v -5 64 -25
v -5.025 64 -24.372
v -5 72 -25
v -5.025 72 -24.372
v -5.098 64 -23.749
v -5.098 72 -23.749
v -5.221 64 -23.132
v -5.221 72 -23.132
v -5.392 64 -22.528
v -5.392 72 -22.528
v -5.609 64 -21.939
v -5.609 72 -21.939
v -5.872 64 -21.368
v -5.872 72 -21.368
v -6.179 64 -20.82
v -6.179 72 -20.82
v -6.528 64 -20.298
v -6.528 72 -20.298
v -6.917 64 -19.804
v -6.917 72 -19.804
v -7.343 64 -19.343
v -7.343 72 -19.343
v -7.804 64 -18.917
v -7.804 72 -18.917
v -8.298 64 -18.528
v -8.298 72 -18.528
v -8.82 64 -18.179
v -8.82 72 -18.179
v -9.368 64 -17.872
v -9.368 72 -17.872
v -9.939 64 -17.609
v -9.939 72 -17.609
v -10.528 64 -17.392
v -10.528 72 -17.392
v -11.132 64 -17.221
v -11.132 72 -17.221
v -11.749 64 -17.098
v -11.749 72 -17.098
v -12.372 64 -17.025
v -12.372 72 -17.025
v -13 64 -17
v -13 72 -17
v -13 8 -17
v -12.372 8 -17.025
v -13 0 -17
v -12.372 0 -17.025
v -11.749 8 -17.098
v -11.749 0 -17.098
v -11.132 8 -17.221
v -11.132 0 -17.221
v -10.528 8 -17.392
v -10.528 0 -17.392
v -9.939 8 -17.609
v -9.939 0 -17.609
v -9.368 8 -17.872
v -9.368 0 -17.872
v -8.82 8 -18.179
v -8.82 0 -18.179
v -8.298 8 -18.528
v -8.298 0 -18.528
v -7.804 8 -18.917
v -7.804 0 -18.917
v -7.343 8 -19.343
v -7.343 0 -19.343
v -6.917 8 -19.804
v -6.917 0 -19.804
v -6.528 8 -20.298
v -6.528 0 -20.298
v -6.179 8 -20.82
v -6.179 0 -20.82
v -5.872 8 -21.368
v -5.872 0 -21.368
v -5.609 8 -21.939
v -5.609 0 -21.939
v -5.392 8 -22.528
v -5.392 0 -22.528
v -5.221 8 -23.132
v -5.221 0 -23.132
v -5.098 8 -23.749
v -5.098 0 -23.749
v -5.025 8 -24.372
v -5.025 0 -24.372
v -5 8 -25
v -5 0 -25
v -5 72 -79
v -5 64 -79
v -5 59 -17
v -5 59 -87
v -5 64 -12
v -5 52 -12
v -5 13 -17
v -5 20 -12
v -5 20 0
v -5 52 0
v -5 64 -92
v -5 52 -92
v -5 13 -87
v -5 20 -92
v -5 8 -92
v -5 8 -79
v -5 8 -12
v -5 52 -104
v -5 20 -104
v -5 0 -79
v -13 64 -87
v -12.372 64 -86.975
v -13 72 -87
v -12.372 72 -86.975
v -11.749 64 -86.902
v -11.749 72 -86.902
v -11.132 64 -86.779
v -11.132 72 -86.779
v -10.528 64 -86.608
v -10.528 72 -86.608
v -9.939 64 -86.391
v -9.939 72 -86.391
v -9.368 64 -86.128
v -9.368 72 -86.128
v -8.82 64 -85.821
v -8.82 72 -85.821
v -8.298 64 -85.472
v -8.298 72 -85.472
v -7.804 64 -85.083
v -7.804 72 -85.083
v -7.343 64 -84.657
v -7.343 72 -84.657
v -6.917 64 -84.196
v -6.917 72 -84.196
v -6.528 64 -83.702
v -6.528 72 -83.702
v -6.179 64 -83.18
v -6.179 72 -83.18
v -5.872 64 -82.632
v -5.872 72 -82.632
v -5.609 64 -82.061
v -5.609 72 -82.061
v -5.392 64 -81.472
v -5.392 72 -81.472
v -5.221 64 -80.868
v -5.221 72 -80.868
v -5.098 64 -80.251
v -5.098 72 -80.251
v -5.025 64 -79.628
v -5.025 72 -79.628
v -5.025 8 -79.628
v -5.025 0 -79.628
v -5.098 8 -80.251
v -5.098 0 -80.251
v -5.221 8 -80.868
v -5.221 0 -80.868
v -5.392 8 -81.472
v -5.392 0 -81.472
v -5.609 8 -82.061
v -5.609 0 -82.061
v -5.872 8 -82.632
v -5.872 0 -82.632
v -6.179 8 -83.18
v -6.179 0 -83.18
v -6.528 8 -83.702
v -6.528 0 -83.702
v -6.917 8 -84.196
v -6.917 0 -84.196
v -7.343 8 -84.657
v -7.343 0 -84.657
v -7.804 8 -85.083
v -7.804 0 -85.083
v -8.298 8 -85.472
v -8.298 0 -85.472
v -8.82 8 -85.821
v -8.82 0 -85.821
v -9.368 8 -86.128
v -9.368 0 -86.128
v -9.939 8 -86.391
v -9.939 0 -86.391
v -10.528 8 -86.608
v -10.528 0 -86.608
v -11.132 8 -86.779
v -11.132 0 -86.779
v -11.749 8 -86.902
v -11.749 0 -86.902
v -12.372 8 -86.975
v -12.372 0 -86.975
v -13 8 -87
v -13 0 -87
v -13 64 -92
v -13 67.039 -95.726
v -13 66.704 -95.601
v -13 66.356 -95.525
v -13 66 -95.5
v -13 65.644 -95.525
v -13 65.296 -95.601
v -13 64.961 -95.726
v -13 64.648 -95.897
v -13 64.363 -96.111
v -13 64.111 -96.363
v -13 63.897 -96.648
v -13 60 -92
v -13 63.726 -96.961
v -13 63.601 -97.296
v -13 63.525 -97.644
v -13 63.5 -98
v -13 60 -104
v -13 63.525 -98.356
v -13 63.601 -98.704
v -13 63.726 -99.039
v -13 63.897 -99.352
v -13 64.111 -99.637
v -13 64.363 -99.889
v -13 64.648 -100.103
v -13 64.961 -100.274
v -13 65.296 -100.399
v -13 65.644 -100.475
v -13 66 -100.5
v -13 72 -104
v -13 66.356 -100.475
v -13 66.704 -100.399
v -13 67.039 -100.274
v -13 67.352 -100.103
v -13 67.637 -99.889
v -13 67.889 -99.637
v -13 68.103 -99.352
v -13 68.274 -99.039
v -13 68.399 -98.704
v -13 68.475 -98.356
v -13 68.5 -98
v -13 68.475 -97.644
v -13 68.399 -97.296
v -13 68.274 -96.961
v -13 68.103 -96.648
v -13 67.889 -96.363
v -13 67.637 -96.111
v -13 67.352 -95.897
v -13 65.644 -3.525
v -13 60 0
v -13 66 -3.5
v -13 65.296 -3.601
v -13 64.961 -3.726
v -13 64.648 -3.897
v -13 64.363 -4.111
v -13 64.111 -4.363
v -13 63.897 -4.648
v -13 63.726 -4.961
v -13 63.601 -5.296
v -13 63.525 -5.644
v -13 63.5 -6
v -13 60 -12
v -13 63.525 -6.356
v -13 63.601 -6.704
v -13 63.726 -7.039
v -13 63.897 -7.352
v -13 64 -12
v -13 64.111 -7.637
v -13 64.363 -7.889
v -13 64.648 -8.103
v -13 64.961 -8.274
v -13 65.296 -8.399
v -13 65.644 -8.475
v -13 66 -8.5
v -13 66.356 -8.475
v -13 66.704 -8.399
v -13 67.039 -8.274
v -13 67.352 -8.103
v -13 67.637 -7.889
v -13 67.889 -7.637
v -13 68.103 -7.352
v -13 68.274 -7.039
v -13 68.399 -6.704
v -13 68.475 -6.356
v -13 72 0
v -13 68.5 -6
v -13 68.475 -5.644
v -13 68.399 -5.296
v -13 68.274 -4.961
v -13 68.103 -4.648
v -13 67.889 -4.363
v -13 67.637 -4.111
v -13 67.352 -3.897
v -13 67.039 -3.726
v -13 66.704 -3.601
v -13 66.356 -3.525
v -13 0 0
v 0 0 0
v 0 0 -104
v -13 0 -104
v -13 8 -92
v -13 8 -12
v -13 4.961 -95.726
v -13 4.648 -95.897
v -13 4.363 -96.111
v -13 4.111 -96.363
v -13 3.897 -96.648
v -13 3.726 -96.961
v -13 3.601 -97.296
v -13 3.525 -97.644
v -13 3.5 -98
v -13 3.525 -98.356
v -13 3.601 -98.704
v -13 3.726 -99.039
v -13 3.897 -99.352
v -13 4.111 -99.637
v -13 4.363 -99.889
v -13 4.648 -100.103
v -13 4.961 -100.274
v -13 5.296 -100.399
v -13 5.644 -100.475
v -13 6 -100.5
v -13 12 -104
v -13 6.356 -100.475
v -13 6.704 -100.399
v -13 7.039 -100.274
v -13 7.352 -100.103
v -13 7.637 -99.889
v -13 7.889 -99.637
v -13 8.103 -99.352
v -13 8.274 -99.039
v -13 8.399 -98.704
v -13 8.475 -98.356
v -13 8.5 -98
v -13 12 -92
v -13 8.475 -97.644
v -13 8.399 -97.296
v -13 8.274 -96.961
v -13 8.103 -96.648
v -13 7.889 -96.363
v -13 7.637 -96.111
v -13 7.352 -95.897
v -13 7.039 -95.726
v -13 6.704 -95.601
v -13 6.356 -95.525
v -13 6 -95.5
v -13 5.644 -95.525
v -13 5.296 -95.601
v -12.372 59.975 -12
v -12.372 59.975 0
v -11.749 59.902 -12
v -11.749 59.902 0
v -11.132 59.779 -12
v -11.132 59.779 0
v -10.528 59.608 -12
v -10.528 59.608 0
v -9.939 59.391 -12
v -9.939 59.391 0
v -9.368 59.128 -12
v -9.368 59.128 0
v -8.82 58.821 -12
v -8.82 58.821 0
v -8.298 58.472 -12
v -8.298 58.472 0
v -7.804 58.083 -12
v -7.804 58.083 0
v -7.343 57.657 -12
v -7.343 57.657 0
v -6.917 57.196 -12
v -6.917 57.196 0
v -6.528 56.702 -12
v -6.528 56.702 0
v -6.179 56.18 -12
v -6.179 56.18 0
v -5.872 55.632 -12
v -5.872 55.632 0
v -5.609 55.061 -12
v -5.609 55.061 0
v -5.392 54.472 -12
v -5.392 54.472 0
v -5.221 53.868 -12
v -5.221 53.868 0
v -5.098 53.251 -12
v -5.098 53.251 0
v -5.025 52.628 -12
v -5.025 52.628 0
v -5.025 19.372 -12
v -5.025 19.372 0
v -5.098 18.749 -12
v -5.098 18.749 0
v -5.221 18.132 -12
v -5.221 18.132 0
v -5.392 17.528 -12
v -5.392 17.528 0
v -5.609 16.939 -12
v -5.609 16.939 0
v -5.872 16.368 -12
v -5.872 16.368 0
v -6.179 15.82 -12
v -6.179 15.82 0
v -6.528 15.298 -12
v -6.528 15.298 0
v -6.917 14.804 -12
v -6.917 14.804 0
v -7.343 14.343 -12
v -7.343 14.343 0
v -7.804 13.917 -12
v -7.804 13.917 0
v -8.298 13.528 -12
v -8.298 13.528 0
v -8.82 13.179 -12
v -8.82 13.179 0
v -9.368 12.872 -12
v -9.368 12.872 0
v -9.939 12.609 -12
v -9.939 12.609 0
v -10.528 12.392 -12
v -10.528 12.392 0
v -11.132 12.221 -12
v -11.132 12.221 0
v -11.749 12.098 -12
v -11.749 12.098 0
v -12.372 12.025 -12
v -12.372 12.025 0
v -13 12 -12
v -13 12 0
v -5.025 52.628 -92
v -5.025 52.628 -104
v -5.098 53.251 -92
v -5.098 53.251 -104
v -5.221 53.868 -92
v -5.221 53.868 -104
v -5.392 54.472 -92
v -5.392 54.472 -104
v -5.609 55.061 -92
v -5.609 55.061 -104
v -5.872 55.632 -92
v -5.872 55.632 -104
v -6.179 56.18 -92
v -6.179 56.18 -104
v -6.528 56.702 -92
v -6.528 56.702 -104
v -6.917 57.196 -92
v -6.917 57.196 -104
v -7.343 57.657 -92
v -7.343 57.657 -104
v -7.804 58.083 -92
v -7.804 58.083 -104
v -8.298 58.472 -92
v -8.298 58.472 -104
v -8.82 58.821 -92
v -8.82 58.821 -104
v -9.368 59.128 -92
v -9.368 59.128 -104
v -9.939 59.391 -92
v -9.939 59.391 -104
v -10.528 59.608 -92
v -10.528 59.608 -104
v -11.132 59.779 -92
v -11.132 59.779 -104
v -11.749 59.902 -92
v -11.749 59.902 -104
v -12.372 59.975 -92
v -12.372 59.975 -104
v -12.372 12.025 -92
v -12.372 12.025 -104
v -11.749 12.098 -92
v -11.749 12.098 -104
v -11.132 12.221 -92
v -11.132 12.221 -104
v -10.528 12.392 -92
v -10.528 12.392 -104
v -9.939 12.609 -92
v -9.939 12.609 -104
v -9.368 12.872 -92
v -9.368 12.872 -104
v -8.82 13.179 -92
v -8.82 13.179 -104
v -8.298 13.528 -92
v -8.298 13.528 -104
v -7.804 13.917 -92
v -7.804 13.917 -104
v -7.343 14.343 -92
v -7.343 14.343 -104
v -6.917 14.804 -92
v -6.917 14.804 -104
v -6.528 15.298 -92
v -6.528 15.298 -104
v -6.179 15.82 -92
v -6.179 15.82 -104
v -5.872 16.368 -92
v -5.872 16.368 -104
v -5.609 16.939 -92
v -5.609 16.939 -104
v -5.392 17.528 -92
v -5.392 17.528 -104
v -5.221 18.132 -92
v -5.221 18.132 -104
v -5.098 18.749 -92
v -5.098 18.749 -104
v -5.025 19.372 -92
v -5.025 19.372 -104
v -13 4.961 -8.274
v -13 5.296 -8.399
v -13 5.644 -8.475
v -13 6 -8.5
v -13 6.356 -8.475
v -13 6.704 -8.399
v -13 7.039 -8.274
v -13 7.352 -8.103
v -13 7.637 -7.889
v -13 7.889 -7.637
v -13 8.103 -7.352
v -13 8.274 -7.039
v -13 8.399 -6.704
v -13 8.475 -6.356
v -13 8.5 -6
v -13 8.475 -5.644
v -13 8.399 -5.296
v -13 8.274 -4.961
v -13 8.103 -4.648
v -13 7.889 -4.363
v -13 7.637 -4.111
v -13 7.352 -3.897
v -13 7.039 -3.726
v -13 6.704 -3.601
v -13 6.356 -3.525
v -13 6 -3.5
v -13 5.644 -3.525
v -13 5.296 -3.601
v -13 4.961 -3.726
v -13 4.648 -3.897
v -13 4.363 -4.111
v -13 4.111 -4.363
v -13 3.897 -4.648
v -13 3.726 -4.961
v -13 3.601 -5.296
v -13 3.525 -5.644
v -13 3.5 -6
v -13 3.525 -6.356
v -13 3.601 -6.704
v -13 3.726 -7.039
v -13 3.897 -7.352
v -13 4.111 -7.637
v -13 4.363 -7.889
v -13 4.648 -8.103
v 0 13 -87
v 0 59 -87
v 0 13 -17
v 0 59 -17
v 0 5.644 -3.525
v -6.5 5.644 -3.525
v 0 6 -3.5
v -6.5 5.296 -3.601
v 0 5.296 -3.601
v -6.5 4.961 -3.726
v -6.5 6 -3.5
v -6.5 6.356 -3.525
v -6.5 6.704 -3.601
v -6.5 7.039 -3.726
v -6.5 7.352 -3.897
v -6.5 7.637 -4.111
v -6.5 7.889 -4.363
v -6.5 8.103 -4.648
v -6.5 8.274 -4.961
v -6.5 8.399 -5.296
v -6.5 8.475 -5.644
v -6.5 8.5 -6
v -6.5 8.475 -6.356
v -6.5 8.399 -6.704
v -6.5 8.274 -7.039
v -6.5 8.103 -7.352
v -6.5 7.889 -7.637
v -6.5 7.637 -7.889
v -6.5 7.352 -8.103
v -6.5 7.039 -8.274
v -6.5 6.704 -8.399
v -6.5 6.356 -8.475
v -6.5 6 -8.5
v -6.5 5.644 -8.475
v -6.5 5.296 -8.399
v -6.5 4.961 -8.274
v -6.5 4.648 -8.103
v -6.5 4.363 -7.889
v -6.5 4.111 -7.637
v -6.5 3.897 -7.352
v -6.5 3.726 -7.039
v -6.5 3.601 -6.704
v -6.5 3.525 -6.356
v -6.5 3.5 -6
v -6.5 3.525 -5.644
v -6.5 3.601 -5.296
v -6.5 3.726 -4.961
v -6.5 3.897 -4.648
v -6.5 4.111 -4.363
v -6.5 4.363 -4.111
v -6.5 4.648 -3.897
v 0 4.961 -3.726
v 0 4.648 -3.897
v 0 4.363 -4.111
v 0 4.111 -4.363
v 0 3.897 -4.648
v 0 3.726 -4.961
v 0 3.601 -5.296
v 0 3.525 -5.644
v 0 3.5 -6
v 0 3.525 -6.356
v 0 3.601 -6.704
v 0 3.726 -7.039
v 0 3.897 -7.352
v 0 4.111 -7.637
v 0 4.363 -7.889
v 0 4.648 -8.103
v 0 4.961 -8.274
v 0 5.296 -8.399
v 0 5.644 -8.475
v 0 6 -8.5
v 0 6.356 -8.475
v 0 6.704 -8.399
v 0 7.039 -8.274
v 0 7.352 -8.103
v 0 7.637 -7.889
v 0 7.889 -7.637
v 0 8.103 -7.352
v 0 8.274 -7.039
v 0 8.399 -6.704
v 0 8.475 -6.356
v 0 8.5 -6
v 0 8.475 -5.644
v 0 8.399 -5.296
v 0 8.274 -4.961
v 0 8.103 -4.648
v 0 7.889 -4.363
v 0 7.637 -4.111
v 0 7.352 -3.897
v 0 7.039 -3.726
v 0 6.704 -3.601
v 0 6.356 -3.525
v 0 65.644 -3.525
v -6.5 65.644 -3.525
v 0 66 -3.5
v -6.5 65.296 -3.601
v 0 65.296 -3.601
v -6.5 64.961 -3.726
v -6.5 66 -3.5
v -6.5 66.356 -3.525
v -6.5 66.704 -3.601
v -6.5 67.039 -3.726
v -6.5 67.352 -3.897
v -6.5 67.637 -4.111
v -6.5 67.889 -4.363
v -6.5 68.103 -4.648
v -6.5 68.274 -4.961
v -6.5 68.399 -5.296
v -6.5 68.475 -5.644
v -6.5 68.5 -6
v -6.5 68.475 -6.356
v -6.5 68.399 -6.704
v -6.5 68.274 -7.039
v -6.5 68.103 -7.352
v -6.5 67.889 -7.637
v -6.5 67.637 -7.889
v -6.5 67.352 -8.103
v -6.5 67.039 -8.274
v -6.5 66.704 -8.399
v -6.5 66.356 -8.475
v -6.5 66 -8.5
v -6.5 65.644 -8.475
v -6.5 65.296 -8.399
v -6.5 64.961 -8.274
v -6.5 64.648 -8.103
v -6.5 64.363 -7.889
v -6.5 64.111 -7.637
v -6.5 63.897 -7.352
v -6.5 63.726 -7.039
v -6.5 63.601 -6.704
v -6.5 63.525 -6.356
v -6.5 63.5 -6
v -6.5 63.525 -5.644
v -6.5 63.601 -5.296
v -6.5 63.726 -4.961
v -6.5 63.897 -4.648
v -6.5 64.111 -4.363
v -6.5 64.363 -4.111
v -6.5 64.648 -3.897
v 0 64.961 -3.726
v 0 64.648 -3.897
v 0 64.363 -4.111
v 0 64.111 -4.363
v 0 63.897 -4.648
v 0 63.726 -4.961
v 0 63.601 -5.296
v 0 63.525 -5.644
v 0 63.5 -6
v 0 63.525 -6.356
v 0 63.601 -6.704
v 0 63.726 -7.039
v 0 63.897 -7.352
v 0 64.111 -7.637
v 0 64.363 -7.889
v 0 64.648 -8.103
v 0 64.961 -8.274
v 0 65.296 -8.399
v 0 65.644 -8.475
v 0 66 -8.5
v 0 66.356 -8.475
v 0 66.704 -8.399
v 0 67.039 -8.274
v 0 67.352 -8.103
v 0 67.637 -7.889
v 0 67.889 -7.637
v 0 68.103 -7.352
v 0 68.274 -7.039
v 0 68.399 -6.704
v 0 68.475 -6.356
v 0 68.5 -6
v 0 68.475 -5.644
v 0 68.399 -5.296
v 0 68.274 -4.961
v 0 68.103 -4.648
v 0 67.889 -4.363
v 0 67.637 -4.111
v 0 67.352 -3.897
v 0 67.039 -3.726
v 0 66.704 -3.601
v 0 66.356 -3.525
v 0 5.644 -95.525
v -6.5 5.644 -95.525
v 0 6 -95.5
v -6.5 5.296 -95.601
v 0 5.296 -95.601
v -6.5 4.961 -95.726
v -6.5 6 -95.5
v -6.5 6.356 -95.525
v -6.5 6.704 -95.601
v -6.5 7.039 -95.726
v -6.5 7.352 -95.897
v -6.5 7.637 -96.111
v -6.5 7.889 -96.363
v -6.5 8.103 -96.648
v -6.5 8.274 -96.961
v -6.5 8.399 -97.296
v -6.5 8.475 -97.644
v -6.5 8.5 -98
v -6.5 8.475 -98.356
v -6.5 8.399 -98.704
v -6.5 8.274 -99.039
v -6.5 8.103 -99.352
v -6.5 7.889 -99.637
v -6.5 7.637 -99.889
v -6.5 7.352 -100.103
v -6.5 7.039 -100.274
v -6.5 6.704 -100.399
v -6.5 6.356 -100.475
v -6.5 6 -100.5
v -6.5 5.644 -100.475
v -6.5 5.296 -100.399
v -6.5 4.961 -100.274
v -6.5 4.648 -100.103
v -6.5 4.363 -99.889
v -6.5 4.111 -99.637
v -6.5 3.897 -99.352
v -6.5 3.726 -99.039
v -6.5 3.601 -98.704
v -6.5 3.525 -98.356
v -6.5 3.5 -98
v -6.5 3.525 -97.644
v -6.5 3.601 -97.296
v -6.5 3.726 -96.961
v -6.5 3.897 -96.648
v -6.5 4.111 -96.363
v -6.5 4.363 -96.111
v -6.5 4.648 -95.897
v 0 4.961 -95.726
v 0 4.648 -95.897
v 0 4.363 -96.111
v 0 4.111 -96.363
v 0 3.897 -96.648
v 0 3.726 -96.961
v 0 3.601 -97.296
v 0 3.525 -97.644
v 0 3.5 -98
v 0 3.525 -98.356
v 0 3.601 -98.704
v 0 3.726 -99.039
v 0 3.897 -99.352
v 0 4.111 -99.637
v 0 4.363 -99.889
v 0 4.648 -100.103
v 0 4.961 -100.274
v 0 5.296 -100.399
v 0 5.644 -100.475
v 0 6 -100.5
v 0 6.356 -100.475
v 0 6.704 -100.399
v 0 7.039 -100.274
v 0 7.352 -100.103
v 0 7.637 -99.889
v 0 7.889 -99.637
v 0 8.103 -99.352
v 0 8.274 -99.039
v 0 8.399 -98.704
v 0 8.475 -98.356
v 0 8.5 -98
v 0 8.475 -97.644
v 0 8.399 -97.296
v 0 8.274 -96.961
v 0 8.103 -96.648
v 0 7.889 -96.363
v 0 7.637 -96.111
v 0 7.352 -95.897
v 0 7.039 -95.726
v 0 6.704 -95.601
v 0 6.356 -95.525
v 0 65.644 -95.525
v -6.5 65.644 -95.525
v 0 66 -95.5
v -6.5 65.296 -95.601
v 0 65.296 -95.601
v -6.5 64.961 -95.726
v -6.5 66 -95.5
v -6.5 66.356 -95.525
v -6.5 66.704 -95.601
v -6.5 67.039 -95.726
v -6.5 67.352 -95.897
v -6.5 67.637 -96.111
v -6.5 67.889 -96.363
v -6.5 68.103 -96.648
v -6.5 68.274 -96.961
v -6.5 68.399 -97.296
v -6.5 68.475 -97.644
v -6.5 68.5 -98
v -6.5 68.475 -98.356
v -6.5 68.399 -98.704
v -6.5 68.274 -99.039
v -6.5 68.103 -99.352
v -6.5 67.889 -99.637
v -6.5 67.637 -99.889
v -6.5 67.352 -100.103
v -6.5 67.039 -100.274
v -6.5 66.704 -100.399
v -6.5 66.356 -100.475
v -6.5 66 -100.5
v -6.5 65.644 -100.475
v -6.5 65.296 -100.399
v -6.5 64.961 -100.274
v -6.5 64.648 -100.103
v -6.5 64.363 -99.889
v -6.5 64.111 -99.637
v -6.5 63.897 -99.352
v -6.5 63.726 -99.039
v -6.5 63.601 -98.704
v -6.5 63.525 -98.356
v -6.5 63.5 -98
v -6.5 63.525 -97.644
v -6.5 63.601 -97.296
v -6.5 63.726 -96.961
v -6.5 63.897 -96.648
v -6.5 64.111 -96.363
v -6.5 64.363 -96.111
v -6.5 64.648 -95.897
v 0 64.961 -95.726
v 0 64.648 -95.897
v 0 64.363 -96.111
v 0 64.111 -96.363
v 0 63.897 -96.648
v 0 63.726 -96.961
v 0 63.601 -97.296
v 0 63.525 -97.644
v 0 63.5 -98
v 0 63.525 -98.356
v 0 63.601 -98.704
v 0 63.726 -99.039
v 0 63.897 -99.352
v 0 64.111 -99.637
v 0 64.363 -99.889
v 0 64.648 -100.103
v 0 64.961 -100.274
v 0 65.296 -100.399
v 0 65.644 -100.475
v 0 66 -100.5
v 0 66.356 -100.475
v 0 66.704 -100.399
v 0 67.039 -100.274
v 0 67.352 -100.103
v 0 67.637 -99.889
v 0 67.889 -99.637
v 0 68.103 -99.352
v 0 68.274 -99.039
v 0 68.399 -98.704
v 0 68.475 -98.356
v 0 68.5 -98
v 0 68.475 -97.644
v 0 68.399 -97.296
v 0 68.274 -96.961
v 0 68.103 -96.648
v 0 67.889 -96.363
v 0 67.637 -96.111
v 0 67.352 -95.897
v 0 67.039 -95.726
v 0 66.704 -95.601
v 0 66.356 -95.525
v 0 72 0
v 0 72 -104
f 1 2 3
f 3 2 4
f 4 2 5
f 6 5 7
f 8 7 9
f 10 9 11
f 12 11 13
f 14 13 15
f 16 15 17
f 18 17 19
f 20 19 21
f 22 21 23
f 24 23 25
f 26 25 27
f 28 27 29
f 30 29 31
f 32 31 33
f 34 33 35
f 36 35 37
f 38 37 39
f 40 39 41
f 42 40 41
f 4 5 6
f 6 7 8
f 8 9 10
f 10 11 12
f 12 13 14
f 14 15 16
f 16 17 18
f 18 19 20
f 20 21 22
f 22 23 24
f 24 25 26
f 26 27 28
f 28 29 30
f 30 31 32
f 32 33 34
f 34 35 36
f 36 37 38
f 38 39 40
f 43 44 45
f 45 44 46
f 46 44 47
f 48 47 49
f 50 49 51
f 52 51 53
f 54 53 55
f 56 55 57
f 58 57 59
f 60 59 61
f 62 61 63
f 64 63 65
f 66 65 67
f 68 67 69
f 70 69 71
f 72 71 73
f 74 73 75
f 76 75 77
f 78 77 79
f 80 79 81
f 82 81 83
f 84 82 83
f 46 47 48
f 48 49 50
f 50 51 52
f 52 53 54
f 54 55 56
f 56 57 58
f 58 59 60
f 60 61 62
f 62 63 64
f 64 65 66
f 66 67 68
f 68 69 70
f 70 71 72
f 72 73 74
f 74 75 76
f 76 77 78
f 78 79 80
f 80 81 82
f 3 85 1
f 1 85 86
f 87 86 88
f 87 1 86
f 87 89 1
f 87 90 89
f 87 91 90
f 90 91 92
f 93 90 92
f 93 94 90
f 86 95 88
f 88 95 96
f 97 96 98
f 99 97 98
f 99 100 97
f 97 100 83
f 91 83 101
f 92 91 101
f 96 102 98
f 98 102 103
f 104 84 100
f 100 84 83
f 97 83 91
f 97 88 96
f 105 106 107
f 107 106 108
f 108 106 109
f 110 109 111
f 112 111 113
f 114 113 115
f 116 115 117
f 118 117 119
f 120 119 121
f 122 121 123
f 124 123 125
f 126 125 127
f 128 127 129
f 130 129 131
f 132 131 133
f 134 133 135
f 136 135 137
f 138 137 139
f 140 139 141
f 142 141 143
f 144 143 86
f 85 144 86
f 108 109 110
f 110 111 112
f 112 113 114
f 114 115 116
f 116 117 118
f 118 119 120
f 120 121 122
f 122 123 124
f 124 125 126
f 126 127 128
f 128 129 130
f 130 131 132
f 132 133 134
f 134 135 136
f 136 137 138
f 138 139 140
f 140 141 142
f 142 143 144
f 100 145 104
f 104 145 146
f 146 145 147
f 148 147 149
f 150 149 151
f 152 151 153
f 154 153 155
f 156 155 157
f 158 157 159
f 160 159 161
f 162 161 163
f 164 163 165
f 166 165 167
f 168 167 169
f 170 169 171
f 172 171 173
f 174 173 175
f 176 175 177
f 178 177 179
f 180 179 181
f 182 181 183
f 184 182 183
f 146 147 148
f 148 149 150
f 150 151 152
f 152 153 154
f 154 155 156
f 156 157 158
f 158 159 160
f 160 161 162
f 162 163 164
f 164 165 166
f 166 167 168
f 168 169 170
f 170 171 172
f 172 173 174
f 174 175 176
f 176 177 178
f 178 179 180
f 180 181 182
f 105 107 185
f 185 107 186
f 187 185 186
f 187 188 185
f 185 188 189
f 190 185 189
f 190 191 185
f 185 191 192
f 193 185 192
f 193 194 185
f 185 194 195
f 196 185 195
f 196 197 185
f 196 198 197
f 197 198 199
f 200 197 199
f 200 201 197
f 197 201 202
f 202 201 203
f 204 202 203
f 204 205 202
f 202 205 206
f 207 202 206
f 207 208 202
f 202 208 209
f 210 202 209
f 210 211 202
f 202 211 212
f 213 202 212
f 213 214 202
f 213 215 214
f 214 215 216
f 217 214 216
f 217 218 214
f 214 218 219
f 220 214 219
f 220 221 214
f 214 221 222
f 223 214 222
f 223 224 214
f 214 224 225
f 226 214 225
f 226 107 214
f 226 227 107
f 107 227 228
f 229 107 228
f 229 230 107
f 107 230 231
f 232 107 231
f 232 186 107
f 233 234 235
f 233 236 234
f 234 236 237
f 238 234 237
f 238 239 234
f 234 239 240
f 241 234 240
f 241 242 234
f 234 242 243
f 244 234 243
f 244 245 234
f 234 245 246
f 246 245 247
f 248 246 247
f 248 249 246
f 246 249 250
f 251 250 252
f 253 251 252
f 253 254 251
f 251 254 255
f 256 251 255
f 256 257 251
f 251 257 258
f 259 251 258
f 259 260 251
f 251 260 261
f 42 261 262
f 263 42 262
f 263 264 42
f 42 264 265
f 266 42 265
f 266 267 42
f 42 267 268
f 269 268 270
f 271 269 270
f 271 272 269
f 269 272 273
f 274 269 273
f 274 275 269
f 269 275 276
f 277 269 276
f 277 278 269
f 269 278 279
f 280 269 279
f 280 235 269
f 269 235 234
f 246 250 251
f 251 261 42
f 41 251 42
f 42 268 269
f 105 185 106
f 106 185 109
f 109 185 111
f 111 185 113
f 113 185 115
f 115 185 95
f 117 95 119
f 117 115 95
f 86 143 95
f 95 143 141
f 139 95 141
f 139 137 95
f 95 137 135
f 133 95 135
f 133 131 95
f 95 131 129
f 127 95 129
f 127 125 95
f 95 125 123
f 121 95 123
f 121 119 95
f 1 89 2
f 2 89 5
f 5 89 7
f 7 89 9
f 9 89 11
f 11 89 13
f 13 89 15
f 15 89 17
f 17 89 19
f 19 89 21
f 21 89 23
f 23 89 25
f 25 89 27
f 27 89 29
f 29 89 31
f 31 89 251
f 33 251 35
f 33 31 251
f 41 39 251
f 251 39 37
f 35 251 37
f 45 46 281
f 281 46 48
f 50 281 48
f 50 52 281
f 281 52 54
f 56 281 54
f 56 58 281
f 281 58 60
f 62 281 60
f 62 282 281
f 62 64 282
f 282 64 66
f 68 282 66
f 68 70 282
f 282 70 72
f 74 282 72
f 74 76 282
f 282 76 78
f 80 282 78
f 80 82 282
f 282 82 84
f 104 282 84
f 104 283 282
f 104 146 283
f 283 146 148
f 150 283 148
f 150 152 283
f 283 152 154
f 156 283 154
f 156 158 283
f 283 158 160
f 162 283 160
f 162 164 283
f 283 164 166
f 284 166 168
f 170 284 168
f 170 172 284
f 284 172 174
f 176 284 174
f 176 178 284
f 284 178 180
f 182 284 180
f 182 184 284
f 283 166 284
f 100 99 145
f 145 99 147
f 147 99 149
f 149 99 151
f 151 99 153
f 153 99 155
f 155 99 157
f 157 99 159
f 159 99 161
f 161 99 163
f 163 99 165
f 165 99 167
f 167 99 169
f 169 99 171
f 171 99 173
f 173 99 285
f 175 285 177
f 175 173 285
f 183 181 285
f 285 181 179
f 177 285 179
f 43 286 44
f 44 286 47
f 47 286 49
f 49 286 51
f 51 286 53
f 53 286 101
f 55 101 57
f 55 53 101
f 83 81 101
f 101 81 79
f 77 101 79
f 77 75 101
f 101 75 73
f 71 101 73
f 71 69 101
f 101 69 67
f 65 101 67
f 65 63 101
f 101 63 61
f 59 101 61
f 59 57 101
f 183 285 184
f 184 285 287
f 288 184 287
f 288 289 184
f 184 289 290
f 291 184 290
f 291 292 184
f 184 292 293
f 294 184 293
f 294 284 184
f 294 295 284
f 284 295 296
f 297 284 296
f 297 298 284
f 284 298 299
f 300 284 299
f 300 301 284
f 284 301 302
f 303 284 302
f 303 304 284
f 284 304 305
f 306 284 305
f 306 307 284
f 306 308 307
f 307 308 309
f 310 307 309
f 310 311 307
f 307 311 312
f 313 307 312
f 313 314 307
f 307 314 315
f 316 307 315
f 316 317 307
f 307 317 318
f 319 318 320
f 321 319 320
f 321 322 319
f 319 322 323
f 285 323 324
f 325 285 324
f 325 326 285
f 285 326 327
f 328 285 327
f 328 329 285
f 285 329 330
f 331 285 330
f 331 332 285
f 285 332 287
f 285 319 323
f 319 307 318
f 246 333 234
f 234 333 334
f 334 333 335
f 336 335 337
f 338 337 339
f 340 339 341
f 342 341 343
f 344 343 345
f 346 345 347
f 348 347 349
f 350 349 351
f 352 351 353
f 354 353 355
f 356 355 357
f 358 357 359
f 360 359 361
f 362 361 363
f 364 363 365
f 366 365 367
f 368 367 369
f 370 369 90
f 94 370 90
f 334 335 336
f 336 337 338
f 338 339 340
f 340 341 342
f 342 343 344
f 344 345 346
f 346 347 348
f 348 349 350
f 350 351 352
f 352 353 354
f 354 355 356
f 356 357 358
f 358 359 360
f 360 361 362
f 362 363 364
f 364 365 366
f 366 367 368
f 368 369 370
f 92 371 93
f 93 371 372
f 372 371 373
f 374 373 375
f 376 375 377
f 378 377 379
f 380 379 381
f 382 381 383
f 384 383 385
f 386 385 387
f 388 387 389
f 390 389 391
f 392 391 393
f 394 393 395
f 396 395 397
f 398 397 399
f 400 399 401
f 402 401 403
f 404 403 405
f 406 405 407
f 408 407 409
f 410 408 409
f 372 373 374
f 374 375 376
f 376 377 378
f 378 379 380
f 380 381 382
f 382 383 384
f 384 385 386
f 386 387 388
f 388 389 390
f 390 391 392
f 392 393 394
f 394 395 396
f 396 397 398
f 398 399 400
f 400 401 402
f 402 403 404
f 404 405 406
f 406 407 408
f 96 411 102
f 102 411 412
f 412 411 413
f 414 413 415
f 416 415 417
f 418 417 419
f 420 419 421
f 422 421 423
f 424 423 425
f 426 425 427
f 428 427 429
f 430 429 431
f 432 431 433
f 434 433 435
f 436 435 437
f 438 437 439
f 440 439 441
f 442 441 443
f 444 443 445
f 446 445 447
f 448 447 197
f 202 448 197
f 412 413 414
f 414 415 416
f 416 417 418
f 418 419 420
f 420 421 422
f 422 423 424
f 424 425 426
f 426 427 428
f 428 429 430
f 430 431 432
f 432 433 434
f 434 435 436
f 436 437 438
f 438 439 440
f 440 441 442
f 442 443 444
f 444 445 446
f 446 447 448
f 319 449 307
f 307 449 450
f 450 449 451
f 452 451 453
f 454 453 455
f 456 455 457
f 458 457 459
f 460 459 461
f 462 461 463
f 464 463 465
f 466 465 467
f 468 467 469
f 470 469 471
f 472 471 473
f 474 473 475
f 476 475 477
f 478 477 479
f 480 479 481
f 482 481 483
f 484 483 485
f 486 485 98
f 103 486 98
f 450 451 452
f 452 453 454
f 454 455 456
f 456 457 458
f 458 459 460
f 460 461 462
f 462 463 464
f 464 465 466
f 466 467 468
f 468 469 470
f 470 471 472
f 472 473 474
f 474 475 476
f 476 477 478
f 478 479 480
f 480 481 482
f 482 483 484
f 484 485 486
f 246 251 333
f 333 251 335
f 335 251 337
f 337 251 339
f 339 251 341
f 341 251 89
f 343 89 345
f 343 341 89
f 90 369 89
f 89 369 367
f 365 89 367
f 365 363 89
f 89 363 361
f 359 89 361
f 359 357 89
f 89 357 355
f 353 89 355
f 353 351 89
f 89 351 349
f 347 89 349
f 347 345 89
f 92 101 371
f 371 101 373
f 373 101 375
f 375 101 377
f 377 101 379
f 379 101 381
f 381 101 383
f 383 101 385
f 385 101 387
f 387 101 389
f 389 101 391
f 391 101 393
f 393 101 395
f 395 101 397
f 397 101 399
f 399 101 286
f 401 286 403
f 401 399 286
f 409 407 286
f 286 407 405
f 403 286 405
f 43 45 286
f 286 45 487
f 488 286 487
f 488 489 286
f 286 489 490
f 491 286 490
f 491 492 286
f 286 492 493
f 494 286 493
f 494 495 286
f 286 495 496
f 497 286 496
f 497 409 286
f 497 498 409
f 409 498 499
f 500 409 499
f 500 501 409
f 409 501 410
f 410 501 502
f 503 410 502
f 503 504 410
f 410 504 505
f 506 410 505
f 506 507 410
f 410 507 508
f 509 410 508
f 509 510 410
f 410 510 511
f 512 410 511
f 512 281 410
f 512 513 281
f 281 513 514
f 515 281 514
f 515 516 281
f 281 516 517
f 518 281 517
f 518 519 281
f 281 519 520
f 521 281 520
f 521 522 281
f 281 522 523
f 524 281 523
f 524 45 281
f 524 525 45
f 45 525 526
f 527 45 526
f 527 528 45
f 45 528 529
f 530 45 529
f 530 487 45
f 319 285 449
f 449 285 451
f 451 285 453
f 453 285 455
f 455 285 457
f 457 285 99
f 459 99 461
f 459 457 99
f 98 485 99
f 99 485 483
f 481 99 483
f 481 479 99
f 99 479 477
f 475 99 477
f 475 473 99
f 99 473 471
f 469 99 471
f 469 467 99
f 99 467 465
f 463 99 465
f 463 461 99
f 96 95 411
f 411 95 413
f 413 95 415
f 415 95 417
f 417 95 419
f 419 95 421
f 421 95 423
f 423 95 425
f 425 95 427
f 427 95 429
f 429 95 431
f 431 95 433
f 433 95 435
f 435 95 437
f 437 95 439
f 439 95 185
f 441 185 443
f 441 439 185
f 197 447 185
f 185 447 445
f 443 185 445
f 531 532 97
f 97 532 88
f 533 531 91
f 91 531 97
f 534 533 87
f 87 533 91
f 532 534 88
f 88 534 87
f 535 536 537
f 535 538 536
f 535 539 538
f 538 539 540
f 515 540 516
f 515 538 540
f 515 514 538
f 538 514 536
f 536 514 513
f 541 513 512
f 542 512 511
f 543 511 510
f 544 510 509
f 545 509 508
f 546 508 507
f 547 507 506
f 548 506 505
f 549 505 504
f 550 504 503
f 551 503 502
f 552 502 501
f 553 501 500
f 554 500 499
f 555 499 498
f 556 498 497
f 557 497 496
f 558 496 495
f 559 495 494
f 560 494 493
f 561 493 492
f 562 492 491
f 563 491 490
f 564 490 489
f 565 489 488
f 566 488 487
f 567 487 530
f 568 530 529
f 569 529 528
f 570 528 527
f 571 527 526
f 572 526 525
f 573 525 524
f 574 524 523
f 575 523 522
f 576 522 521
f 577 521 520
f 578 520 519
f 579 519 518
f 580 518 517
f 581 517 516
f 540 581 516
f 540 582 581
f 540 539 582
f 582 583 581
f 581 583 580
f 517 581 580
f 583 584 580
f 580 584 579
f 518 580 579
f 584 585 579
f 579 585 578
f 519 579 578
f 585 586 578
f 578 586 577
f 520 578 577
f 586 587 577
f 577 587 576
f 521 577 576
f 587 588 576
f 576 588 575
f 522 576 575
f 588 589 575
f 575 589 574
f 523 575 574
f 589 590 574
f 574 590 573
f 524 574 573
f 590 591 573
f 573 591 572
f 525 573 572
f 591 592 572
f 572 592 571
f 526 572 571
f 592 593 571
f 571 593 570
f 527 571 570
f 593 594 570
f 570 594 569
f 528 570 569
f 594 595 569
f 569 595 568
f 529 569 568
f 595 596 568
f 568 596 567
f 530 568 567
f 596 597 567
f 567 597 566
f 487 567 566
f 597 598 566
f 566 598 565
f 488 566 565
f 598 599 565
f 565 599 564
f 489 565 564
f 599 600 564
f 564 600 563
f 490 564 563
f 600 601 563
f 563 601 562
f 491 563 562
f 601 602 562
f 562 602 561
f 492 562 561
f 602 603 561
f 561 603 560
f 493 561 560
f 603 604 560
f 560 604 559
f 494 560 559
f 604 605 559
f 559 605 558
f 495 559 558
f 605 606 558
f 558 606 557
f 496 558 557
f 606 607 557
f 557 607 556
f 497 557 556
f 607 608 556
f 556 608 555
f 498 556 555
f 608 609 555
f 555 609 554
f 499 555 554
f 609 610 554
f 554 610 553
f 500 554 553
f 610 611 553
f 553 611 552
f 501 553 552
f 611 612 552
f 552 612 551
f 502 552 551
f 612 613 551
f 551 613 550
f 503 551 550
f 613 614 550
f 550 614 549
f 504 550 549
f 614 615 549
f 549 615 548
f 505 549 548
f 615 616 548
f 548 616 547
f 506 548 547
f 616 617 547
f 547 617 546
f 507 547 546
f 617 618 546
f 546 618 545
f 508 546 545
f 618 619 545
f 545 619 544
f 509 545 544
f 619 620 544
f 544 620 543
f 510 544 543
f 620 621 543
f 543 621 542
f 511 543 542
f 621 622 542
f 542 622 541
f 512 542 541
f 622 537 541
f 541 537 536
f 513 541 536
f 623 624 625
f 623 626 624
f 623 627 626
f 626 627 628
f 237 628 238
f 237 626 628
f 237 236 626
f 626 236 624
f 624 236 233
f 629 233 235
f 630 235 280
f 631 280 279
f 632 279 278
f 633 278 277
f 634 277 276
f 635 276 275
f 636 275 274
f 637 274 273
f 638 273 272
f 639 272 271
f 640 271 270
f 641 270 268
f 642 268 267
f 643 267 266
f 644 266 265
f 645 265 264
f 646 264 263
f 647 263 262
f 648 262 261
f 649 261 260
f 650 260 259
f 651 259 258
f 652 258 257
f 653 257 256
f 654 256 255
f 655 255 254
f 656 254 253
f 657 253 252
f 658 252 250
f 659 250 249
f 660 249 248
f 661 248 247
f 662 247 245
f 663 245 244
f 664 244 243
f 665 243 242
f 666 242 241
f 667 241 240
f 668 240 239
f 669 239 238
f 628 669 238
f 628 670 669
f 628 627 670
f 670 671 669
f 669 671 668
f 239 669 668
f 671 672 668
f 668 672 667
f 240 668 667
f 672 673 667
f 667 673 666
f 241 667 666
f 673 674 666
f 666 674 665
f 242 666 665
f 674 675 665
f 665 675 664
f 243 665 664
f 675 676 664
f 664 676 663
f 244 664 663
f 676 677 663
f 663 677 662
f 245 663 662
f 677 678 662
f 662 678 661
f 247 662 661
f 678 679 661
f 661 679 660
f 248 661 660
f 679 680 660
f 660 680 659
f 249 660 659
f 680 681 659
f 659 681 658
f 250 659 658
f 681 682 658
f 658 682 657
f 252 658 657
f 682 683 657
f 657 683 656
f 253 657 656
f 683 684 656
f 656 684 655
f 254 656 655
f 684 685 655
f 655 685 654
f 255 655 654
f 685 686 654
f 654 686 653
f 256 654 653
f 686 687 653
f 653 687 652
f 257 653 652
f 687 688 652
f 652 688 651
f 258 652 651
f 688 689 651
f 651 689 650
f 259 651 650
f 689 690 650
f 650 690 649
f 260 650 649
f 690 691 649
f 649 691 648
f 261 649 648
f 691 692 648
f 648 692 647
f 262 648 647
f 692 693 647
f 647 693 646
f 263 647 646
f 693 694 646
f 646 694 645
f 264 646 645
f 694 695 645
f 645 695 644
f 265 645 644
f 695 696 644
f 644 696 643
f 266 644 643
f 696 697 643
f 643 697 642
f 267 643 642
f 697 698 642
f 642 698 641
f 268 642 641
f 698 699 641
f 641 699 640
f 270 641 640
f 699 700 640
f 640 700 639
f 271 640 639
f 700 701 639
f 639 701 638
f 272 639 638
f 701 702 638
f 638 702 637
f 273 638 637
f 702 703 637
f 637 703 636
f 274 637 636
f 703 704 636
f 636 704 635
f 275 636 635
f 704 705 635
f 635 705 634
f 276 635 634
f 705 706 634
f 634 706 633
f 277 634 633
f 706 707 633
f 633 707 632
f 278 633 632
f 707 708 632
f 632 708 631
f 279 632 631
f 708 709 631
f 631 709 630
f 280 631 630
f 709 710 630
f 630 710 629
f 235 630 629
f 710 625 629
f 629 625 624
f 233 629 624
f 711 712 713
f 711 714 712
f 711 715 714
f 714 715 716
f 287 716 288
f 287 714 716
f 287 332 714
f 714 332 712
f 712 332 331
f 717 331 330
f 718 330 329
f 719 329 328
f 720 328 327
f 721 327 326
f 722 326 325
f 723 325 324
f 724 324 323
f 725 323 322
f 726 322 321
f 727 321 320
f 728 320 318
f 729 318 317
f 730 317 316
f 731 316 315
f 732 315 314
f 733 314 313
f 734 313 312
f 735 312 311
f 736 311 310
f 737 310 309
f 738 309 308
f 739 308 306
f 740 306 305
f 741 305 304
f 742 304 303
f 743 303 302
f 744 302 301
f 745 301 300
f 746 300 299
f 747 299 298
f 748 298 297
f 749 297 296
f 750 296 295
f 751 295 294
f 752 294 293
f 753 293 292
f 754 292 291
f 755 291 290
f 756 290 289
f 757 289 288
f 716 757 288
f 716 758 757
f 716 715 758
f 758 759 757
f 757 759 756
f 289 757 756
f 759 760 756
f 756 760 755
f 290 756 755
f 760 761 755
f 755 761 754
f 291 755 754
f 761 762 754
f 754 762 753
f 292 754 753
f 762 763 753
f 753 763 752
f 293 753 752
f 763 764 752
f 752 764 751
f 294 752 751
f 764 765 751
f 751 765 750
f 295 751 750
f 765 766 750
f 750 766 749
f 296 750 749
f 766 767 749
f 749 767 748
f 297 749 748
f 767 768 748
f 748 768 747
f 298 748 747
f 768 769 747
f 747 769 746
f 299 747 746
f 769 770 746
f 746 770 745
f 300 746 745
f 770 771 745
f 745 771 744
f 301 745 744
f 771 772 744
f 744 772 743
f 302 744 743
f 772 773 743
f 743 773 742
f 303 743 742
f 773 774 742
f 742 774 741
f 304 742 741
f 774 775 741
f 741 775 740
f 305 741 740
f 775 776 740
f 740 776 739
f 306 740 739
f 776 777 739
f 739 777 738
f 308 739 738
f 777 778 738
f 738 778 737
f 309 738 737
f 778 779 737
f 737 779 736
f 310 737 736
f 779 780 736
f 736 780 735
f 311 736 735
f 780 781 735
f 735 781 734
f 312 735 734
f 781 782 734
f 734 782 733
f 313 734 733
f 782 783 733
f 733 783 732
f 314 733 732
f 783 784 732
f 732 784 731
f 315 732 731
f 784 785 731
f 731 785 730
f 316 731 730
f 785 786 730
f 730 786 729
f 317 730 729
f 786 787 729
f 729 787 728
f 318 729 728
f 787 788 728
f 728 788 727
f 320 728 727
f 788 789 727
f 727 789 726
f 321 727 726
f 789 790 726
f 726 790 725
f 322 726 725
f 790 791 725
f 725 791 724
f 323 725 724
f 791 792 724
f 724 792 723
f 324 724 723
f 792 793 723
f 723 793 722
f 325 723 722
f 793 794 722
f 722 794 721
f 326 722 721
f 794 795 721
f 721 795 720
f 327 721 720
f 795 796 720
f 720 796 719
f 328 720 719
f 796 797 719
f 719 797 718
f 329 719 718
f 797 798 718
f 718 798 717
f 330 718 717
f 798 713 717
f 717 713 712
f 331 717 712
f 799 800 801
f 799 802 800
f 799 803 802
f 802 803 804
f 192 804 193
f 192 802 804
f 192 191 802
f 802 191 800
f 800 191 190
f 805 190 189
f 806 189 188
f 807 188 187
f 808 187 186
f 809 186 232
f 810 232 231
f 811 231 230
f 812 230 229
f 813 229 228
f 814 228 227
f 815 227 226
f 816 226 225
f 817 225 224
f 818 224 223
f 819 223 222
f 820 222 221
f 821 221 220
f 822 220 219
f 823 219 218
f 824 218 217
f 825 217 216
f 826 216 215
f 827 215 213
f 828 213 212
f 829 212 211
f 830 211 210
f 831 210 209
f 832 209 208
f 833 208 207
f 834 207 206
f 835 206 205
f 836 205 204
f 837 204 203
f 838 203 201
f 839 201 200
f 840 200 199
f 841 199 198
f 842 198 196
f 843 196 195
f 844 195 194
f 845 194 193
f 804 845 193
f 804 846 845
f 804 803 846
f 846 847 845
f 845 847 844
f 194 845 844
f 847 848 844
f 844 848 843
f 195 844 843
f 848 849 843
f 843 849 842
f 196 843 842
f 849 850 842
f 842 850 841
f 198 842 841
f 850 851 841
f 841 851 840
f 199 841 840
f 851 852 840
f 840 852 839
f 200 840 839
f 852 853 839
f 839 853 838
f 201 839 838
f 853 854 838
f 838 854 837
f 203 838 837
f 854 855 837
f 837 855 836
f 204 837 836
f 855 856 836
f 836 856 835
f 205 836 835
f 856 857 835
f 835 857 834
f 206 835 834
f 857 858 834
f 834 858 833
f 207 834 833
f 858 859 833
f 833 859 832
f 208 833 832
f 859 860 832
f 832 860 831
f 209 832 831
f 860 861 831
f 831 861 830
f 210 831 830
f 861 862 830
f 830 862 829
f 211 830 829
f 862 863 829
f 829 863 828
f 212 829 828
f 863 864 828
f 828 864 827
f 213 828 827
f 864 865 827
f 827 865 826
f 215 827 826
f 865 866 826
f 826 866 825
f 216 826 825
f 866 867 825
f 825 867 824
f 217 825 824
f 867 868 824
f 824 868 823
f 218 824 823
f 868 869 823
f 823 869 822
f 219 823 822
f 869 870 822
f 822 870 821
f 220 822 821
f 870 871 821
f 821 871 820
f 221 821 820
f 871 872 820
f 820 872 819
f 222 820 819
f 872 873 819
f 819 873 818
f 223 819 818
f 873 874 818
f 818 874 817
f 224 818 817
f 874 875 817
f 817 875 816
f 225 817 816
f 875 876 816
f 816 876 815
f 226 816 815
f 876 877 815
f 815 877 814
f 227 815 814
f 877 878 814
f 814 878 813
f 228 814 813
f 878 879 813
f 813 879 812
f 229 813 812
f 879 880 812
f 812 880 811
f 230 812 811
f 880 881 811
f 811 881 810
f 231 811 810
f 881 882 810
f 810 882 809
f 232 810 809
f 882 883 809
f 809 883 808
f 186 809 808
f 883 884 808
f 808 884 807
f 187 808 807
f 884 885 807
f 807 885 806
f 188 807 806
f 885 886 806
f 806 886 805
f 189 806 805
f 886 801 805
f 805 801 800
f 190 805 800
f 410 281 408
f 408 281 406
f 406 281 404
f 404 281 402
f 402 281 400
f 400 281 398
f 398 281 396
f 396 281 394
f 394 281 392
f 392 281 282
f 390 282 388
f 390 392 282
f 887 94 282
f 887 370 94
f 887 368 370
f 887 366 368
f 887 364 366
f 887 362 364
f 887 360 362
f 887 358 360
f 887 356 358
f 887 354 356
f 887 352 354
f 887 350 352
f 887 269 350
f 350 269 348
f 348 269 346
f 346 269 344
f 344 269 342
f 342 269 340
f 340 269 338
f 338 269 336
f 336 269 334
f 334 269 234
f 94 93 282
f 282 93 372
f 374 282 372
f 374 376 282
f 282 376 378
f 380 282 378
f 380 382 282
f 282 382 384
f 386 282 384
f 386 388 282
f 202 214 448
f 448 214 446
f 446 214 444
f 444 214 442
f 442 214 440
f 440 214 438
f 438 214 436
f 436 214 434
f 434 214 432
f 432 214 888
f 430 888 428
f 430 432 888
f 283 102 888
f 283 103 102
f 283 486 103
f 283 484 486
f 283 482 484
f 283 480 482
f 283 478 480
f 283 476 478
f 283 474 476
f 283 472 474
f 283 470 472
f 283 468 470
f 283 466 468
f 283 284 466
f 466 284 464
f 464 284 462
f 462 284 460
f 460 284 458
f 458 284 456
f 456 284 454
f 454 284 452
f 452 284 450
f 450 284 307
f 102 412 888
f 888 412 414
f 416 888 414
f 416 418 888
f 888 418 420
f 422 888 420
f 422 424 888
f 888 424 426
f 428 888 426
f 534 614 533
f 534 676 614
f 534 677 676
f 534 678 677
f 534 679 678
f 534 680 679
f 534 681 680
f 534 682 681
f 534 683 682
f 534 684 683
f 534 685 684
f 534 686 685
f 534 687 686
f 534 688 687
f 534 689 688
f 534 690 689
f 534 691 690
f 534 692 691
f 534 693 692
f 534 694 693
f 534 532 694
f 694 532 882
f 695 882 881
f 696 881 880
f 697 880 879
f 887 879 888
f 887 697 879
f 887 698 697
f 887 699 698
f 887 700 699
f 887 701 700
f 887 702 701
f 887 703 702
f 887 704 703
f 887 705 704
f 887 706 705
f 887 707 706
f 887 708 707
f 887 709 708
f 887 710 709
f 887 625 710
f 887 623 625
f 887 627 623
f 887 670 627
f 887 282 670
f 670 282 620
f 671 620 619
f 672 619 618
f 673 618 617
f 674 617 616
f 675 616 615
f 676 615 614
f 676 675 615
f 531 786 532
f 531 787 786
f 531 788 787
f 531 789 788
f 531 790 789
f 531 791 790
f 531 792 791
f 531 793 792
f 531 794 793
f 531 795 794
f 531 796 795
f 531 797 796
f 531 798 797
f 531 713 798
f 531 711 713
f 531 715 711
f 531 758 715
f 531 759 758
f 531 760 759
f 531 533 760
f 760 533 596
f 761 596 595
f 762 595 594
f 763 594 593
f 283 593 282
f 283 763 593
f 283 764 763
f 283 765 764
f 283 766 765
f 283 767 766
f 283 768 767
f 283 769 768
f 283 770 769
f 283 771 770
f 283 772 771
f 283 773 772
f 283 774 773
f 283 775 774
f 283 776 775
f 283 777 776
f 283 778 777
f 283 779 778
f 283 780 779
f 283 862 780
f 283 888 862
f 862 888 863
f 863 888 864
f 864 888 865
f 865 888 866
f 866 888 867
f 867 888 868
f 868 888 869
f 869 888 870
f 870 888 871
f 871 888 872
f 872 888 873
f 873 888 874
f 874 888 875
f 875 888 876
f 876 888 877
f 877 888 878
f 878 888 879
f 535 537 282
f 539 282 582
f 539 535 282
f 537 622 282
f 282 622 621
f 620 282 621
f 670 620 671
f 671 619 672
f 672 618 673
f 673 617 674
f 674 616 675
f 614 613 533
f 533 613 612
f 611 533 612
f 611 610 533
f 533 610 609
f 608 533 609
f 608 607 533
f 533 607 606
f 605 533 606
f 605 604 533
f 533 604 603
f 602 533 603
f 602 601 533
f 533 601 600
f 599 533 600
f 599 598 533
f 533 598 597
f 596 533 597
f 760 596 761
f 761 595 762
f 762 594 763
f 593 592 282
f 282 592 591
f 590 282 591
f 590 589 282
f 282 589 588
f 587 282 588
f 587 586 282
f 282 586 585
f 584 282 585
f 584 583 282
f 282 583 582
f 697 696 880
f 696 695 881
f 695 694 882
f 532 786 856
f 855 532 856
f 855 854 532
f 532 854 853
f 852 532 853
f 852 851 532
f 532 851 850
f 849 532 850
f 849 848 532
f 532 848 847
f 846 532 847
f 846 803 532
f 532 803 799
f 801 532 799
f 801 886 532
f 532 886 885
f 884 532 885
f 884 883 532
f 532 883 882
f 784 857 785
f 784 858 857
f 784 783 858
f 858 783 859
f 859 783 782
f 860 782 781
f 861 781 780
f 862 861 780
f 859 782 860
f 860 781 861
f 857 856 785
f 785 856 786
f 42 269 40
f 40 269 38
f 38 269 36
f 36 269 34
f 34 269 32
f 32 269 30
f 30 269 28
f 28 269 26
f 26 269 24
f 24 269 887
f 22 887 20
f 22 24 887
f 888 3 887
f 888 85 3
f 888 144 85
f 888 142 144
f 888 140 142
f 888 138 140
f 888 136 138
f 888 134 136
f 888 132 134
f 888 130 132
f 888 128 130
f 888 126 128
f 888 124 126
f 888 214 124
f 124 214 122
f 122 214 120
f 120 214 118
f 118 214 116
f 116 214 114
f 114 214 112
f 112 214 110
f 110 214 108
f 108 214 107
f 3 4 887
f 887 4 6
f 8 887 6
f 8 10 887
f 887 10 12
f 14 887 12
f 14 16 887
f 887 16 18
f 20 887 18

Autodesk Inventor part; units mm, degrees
ref_plane "YZ Plane" through (0, 0, 0) normal (1, 0, 0) x (0, 1, 0)
ref_plane "XZ Plane" through (0, 0, 0) normal (0, 1, 0) x (-1, 0, 0)
ref_plane "XY Plane" through (0, 0, 0) normal (0, 0, 1) x (1, 0, 0)
sketch "Sketch1" plane through (0, 0, 0) normal (0, 1, 0) x (-1, 0, 0)
  line L0 (0, 0) -> (0, -104)
  line L1 (0, 0) -> (13, 0)
  line L2 (13, 0) -> (13, -12)
  line L3 (13, -12) -> (5, -12)
  line L4 (5, -12) -> (5, -92)
  line L5 (5, -92) -> (13, -92)
  line L6 (13, -92) -> (13, -104)
  line L7 (13, -104) -> (0, -104)
  dimension "d0" = 104
  dimension "d1" = 13
  dimension "d2" = 12
  dimension "d3" = 8
  dimension "d4" = 80
  dimension "d5" = 8
extrude "Extrusion1" add sketch "Sketch1" along normal blind 72
sketch "Sketch3" plane through (-5, 0, -92) normal (-1, 0, 0) x (0, 0, 1)
  line L0 (0, 0) -> (80, 0) projected
  line L1 (0, 0) -> (80, 0) projected
  line L2 (80, 0) -> (80, 72) projected
  line L3 (0, 72) -> (80, 72) projected
  line L4 (0, 0) -> (0, 72) projected
  line L5 (0, 0) -> (0, 72) projected
  line L6 (80, 0) -> (0, 0)
  line L7 (0, 0) -> (0, 8)
  line L8 (0, 8) -> (80, 8)
  line L9 (80, 8) -> (80, 0)
  line L10 (80, 0) -> (80, 72) projected
  line L11 (80, 72) -> (0, 72)
  line L12 (0, 72) -> (0, 64)
  line L13 (0, 64) -> (80, 64)
  line L14 (80, 64) -> (80, 72)
  point P0 (92, 0)
  dimension "d14" = 8
  dimension "d15" = 8
extrude "Extrusion3" add sketch "Sketch3" along normal blind 8 contours L4 L8 L2 L0 | L4 L3 L2 L13
sketch "Sketch4" plane through (-13, 0, -104) normal (-1, 0, 0) x (0, 0, 1)
  circle A0 centre (98, 66) radius 2.5
  line L0 (0, 72) -> (104, 72) projected
  line L1 (0, 0) -> (0, 72) projected
  line L2 (0, 0) -> (104, 0) projected
  line L3 (104, 0) -> (104, 72) projected
  line L4 (12, 64) -> (92, 64) projected
  line L5 (92, 8) -> (92, 64) projected
  line L6 (92, 8) -> (12, 8) projected
  line L7 (12, 8) -> (12, 64) projected
  circle A1 centre (6, 6) radius 2.5
  circle A2 centre (98, 6) radius 2.5
  circle A3 centre (6, 66) radius 2.5
  line L8 (0, 0) -> (0, 72) projected
  line L9 (104, 0) -> (104, 72) projected
  dimension "d18" = 5
  dimension "d19" = 6
  dimension "d20" = 6
  dimension "d25" = 5
  dimension "d31" = 5
  dimension "d32" = 5
  dimension "d37" = 6
  dimension "d38" = 6
  dimension "d46" = 6
  dimension "d47" = 6
extrude "Extrusion5" cut sketch "Sketch4" against normal through all contours A0 | A1 | A2 | A3
sketch "Sketch5" plane through (-5, 8, -92) normal (-1, 0, 0) x (0, 0, 1)
  line L0 (80, 0) -> (0, 0) projected
  line L1 (5, 5) -> (75, 5)
  line L2 (75, 5) -> (75, 51)
  line L3 (75, 51) -> (5, 51)
  line L4 (5, 51) -> (5, 5)
  line L5 (0, 0) -> (0, 56) projected
  line L6 (80, 56) -> (0, 56) projected
  line L7 (0, 0) -> (0, 56) projected
  line L8 (0, 0) -> (80, 0) projected
  line L9 (80, 0) -> (80, 56) projected
  line L10 (0, 56) -> (80, 56) projected
  line L11 (80, 0) -> (80, 56) projected
  point P0 (92, -8)
  dimension "d50" = 5
  dimension "d51" = 5
  dimension "d52" = 5
  dimension "d53" = 5
extrude "Extrusion6" cut sketch "Sketch5" against normal through all contours L4 L3 L2 L1
sketch "Sketch6" plane through (-13, 0, -104) normal (-1, 0, 0) x (0, 0, 1)
  line L0 (92, 8) -> (92, 64) projected
  line L1 (92, 12) -> (104, 12)
  line L2 (104, 0) -> (104, 72) projected
  line L3 (92, 60) -> (104, 60)
  line L4 (12, 8) -> (12, 64) projected
  line L5 (12, 12) -> (0, 12)
  line L6 (0, 0) -> (0, 72) projected
  line L7 (12, 60) -> (0, 60)
  line L8 (0, 72) -> (104, 72) projected
  line L9 (0, 0) -> (104, 0) projected
  line L10 (0, 12) -> (0, 60)
  line L11 (12, 12) -> (12, 60)
  line L12 (92, 12) -> (92, 60)
  line L13 (104, 12) -> (104, 60)
  dimension "d56" = 12
  dimension "d57" = 12
extrude "Extrusion7" cut sketch "Sketch6" against normal blind 8 contours L0 L3 L2 L1 | L6 L7 L4 L5
fillet "Fillet1" radius 8 1 edges at (-5, 12, -98)
fillet "Fillet2" radius 8 1 edges at (-5, 60, -98)
fillet "Fillet3" radius 8 2 edges at (-5, 12, -6) (-5, 60, -6)
sketch "Sketch7" plane through (-13, 72, -104) normal (-1, 0, 0) x (0, 0, 1)
  line L0 (104, 0) -> (0, 0) projected
  line L1 (17, -72) -> (87, -72)
  line L2 (87, -72) -> (87, 0)
  line L3 (87, 0) -> (17, 0)
  line L4 (17, 0) -> (17, -72)
  line L5 (0, -72) -> (0, -60) projected
  point P0 (104, -72)
  dimension "d63" = 17
  dimension "d64" = 17
  dimension "d65" = 72
extrude "Extrusion8" cut sketch "Sketch7" against normal blind 8
fillet "Fillet4" radius 8 4 edges at (-5, 4, -87) (-5, 68, -87) (-5, 4, -17) (-5, 68, -17)
properties part number "batteryholder"
